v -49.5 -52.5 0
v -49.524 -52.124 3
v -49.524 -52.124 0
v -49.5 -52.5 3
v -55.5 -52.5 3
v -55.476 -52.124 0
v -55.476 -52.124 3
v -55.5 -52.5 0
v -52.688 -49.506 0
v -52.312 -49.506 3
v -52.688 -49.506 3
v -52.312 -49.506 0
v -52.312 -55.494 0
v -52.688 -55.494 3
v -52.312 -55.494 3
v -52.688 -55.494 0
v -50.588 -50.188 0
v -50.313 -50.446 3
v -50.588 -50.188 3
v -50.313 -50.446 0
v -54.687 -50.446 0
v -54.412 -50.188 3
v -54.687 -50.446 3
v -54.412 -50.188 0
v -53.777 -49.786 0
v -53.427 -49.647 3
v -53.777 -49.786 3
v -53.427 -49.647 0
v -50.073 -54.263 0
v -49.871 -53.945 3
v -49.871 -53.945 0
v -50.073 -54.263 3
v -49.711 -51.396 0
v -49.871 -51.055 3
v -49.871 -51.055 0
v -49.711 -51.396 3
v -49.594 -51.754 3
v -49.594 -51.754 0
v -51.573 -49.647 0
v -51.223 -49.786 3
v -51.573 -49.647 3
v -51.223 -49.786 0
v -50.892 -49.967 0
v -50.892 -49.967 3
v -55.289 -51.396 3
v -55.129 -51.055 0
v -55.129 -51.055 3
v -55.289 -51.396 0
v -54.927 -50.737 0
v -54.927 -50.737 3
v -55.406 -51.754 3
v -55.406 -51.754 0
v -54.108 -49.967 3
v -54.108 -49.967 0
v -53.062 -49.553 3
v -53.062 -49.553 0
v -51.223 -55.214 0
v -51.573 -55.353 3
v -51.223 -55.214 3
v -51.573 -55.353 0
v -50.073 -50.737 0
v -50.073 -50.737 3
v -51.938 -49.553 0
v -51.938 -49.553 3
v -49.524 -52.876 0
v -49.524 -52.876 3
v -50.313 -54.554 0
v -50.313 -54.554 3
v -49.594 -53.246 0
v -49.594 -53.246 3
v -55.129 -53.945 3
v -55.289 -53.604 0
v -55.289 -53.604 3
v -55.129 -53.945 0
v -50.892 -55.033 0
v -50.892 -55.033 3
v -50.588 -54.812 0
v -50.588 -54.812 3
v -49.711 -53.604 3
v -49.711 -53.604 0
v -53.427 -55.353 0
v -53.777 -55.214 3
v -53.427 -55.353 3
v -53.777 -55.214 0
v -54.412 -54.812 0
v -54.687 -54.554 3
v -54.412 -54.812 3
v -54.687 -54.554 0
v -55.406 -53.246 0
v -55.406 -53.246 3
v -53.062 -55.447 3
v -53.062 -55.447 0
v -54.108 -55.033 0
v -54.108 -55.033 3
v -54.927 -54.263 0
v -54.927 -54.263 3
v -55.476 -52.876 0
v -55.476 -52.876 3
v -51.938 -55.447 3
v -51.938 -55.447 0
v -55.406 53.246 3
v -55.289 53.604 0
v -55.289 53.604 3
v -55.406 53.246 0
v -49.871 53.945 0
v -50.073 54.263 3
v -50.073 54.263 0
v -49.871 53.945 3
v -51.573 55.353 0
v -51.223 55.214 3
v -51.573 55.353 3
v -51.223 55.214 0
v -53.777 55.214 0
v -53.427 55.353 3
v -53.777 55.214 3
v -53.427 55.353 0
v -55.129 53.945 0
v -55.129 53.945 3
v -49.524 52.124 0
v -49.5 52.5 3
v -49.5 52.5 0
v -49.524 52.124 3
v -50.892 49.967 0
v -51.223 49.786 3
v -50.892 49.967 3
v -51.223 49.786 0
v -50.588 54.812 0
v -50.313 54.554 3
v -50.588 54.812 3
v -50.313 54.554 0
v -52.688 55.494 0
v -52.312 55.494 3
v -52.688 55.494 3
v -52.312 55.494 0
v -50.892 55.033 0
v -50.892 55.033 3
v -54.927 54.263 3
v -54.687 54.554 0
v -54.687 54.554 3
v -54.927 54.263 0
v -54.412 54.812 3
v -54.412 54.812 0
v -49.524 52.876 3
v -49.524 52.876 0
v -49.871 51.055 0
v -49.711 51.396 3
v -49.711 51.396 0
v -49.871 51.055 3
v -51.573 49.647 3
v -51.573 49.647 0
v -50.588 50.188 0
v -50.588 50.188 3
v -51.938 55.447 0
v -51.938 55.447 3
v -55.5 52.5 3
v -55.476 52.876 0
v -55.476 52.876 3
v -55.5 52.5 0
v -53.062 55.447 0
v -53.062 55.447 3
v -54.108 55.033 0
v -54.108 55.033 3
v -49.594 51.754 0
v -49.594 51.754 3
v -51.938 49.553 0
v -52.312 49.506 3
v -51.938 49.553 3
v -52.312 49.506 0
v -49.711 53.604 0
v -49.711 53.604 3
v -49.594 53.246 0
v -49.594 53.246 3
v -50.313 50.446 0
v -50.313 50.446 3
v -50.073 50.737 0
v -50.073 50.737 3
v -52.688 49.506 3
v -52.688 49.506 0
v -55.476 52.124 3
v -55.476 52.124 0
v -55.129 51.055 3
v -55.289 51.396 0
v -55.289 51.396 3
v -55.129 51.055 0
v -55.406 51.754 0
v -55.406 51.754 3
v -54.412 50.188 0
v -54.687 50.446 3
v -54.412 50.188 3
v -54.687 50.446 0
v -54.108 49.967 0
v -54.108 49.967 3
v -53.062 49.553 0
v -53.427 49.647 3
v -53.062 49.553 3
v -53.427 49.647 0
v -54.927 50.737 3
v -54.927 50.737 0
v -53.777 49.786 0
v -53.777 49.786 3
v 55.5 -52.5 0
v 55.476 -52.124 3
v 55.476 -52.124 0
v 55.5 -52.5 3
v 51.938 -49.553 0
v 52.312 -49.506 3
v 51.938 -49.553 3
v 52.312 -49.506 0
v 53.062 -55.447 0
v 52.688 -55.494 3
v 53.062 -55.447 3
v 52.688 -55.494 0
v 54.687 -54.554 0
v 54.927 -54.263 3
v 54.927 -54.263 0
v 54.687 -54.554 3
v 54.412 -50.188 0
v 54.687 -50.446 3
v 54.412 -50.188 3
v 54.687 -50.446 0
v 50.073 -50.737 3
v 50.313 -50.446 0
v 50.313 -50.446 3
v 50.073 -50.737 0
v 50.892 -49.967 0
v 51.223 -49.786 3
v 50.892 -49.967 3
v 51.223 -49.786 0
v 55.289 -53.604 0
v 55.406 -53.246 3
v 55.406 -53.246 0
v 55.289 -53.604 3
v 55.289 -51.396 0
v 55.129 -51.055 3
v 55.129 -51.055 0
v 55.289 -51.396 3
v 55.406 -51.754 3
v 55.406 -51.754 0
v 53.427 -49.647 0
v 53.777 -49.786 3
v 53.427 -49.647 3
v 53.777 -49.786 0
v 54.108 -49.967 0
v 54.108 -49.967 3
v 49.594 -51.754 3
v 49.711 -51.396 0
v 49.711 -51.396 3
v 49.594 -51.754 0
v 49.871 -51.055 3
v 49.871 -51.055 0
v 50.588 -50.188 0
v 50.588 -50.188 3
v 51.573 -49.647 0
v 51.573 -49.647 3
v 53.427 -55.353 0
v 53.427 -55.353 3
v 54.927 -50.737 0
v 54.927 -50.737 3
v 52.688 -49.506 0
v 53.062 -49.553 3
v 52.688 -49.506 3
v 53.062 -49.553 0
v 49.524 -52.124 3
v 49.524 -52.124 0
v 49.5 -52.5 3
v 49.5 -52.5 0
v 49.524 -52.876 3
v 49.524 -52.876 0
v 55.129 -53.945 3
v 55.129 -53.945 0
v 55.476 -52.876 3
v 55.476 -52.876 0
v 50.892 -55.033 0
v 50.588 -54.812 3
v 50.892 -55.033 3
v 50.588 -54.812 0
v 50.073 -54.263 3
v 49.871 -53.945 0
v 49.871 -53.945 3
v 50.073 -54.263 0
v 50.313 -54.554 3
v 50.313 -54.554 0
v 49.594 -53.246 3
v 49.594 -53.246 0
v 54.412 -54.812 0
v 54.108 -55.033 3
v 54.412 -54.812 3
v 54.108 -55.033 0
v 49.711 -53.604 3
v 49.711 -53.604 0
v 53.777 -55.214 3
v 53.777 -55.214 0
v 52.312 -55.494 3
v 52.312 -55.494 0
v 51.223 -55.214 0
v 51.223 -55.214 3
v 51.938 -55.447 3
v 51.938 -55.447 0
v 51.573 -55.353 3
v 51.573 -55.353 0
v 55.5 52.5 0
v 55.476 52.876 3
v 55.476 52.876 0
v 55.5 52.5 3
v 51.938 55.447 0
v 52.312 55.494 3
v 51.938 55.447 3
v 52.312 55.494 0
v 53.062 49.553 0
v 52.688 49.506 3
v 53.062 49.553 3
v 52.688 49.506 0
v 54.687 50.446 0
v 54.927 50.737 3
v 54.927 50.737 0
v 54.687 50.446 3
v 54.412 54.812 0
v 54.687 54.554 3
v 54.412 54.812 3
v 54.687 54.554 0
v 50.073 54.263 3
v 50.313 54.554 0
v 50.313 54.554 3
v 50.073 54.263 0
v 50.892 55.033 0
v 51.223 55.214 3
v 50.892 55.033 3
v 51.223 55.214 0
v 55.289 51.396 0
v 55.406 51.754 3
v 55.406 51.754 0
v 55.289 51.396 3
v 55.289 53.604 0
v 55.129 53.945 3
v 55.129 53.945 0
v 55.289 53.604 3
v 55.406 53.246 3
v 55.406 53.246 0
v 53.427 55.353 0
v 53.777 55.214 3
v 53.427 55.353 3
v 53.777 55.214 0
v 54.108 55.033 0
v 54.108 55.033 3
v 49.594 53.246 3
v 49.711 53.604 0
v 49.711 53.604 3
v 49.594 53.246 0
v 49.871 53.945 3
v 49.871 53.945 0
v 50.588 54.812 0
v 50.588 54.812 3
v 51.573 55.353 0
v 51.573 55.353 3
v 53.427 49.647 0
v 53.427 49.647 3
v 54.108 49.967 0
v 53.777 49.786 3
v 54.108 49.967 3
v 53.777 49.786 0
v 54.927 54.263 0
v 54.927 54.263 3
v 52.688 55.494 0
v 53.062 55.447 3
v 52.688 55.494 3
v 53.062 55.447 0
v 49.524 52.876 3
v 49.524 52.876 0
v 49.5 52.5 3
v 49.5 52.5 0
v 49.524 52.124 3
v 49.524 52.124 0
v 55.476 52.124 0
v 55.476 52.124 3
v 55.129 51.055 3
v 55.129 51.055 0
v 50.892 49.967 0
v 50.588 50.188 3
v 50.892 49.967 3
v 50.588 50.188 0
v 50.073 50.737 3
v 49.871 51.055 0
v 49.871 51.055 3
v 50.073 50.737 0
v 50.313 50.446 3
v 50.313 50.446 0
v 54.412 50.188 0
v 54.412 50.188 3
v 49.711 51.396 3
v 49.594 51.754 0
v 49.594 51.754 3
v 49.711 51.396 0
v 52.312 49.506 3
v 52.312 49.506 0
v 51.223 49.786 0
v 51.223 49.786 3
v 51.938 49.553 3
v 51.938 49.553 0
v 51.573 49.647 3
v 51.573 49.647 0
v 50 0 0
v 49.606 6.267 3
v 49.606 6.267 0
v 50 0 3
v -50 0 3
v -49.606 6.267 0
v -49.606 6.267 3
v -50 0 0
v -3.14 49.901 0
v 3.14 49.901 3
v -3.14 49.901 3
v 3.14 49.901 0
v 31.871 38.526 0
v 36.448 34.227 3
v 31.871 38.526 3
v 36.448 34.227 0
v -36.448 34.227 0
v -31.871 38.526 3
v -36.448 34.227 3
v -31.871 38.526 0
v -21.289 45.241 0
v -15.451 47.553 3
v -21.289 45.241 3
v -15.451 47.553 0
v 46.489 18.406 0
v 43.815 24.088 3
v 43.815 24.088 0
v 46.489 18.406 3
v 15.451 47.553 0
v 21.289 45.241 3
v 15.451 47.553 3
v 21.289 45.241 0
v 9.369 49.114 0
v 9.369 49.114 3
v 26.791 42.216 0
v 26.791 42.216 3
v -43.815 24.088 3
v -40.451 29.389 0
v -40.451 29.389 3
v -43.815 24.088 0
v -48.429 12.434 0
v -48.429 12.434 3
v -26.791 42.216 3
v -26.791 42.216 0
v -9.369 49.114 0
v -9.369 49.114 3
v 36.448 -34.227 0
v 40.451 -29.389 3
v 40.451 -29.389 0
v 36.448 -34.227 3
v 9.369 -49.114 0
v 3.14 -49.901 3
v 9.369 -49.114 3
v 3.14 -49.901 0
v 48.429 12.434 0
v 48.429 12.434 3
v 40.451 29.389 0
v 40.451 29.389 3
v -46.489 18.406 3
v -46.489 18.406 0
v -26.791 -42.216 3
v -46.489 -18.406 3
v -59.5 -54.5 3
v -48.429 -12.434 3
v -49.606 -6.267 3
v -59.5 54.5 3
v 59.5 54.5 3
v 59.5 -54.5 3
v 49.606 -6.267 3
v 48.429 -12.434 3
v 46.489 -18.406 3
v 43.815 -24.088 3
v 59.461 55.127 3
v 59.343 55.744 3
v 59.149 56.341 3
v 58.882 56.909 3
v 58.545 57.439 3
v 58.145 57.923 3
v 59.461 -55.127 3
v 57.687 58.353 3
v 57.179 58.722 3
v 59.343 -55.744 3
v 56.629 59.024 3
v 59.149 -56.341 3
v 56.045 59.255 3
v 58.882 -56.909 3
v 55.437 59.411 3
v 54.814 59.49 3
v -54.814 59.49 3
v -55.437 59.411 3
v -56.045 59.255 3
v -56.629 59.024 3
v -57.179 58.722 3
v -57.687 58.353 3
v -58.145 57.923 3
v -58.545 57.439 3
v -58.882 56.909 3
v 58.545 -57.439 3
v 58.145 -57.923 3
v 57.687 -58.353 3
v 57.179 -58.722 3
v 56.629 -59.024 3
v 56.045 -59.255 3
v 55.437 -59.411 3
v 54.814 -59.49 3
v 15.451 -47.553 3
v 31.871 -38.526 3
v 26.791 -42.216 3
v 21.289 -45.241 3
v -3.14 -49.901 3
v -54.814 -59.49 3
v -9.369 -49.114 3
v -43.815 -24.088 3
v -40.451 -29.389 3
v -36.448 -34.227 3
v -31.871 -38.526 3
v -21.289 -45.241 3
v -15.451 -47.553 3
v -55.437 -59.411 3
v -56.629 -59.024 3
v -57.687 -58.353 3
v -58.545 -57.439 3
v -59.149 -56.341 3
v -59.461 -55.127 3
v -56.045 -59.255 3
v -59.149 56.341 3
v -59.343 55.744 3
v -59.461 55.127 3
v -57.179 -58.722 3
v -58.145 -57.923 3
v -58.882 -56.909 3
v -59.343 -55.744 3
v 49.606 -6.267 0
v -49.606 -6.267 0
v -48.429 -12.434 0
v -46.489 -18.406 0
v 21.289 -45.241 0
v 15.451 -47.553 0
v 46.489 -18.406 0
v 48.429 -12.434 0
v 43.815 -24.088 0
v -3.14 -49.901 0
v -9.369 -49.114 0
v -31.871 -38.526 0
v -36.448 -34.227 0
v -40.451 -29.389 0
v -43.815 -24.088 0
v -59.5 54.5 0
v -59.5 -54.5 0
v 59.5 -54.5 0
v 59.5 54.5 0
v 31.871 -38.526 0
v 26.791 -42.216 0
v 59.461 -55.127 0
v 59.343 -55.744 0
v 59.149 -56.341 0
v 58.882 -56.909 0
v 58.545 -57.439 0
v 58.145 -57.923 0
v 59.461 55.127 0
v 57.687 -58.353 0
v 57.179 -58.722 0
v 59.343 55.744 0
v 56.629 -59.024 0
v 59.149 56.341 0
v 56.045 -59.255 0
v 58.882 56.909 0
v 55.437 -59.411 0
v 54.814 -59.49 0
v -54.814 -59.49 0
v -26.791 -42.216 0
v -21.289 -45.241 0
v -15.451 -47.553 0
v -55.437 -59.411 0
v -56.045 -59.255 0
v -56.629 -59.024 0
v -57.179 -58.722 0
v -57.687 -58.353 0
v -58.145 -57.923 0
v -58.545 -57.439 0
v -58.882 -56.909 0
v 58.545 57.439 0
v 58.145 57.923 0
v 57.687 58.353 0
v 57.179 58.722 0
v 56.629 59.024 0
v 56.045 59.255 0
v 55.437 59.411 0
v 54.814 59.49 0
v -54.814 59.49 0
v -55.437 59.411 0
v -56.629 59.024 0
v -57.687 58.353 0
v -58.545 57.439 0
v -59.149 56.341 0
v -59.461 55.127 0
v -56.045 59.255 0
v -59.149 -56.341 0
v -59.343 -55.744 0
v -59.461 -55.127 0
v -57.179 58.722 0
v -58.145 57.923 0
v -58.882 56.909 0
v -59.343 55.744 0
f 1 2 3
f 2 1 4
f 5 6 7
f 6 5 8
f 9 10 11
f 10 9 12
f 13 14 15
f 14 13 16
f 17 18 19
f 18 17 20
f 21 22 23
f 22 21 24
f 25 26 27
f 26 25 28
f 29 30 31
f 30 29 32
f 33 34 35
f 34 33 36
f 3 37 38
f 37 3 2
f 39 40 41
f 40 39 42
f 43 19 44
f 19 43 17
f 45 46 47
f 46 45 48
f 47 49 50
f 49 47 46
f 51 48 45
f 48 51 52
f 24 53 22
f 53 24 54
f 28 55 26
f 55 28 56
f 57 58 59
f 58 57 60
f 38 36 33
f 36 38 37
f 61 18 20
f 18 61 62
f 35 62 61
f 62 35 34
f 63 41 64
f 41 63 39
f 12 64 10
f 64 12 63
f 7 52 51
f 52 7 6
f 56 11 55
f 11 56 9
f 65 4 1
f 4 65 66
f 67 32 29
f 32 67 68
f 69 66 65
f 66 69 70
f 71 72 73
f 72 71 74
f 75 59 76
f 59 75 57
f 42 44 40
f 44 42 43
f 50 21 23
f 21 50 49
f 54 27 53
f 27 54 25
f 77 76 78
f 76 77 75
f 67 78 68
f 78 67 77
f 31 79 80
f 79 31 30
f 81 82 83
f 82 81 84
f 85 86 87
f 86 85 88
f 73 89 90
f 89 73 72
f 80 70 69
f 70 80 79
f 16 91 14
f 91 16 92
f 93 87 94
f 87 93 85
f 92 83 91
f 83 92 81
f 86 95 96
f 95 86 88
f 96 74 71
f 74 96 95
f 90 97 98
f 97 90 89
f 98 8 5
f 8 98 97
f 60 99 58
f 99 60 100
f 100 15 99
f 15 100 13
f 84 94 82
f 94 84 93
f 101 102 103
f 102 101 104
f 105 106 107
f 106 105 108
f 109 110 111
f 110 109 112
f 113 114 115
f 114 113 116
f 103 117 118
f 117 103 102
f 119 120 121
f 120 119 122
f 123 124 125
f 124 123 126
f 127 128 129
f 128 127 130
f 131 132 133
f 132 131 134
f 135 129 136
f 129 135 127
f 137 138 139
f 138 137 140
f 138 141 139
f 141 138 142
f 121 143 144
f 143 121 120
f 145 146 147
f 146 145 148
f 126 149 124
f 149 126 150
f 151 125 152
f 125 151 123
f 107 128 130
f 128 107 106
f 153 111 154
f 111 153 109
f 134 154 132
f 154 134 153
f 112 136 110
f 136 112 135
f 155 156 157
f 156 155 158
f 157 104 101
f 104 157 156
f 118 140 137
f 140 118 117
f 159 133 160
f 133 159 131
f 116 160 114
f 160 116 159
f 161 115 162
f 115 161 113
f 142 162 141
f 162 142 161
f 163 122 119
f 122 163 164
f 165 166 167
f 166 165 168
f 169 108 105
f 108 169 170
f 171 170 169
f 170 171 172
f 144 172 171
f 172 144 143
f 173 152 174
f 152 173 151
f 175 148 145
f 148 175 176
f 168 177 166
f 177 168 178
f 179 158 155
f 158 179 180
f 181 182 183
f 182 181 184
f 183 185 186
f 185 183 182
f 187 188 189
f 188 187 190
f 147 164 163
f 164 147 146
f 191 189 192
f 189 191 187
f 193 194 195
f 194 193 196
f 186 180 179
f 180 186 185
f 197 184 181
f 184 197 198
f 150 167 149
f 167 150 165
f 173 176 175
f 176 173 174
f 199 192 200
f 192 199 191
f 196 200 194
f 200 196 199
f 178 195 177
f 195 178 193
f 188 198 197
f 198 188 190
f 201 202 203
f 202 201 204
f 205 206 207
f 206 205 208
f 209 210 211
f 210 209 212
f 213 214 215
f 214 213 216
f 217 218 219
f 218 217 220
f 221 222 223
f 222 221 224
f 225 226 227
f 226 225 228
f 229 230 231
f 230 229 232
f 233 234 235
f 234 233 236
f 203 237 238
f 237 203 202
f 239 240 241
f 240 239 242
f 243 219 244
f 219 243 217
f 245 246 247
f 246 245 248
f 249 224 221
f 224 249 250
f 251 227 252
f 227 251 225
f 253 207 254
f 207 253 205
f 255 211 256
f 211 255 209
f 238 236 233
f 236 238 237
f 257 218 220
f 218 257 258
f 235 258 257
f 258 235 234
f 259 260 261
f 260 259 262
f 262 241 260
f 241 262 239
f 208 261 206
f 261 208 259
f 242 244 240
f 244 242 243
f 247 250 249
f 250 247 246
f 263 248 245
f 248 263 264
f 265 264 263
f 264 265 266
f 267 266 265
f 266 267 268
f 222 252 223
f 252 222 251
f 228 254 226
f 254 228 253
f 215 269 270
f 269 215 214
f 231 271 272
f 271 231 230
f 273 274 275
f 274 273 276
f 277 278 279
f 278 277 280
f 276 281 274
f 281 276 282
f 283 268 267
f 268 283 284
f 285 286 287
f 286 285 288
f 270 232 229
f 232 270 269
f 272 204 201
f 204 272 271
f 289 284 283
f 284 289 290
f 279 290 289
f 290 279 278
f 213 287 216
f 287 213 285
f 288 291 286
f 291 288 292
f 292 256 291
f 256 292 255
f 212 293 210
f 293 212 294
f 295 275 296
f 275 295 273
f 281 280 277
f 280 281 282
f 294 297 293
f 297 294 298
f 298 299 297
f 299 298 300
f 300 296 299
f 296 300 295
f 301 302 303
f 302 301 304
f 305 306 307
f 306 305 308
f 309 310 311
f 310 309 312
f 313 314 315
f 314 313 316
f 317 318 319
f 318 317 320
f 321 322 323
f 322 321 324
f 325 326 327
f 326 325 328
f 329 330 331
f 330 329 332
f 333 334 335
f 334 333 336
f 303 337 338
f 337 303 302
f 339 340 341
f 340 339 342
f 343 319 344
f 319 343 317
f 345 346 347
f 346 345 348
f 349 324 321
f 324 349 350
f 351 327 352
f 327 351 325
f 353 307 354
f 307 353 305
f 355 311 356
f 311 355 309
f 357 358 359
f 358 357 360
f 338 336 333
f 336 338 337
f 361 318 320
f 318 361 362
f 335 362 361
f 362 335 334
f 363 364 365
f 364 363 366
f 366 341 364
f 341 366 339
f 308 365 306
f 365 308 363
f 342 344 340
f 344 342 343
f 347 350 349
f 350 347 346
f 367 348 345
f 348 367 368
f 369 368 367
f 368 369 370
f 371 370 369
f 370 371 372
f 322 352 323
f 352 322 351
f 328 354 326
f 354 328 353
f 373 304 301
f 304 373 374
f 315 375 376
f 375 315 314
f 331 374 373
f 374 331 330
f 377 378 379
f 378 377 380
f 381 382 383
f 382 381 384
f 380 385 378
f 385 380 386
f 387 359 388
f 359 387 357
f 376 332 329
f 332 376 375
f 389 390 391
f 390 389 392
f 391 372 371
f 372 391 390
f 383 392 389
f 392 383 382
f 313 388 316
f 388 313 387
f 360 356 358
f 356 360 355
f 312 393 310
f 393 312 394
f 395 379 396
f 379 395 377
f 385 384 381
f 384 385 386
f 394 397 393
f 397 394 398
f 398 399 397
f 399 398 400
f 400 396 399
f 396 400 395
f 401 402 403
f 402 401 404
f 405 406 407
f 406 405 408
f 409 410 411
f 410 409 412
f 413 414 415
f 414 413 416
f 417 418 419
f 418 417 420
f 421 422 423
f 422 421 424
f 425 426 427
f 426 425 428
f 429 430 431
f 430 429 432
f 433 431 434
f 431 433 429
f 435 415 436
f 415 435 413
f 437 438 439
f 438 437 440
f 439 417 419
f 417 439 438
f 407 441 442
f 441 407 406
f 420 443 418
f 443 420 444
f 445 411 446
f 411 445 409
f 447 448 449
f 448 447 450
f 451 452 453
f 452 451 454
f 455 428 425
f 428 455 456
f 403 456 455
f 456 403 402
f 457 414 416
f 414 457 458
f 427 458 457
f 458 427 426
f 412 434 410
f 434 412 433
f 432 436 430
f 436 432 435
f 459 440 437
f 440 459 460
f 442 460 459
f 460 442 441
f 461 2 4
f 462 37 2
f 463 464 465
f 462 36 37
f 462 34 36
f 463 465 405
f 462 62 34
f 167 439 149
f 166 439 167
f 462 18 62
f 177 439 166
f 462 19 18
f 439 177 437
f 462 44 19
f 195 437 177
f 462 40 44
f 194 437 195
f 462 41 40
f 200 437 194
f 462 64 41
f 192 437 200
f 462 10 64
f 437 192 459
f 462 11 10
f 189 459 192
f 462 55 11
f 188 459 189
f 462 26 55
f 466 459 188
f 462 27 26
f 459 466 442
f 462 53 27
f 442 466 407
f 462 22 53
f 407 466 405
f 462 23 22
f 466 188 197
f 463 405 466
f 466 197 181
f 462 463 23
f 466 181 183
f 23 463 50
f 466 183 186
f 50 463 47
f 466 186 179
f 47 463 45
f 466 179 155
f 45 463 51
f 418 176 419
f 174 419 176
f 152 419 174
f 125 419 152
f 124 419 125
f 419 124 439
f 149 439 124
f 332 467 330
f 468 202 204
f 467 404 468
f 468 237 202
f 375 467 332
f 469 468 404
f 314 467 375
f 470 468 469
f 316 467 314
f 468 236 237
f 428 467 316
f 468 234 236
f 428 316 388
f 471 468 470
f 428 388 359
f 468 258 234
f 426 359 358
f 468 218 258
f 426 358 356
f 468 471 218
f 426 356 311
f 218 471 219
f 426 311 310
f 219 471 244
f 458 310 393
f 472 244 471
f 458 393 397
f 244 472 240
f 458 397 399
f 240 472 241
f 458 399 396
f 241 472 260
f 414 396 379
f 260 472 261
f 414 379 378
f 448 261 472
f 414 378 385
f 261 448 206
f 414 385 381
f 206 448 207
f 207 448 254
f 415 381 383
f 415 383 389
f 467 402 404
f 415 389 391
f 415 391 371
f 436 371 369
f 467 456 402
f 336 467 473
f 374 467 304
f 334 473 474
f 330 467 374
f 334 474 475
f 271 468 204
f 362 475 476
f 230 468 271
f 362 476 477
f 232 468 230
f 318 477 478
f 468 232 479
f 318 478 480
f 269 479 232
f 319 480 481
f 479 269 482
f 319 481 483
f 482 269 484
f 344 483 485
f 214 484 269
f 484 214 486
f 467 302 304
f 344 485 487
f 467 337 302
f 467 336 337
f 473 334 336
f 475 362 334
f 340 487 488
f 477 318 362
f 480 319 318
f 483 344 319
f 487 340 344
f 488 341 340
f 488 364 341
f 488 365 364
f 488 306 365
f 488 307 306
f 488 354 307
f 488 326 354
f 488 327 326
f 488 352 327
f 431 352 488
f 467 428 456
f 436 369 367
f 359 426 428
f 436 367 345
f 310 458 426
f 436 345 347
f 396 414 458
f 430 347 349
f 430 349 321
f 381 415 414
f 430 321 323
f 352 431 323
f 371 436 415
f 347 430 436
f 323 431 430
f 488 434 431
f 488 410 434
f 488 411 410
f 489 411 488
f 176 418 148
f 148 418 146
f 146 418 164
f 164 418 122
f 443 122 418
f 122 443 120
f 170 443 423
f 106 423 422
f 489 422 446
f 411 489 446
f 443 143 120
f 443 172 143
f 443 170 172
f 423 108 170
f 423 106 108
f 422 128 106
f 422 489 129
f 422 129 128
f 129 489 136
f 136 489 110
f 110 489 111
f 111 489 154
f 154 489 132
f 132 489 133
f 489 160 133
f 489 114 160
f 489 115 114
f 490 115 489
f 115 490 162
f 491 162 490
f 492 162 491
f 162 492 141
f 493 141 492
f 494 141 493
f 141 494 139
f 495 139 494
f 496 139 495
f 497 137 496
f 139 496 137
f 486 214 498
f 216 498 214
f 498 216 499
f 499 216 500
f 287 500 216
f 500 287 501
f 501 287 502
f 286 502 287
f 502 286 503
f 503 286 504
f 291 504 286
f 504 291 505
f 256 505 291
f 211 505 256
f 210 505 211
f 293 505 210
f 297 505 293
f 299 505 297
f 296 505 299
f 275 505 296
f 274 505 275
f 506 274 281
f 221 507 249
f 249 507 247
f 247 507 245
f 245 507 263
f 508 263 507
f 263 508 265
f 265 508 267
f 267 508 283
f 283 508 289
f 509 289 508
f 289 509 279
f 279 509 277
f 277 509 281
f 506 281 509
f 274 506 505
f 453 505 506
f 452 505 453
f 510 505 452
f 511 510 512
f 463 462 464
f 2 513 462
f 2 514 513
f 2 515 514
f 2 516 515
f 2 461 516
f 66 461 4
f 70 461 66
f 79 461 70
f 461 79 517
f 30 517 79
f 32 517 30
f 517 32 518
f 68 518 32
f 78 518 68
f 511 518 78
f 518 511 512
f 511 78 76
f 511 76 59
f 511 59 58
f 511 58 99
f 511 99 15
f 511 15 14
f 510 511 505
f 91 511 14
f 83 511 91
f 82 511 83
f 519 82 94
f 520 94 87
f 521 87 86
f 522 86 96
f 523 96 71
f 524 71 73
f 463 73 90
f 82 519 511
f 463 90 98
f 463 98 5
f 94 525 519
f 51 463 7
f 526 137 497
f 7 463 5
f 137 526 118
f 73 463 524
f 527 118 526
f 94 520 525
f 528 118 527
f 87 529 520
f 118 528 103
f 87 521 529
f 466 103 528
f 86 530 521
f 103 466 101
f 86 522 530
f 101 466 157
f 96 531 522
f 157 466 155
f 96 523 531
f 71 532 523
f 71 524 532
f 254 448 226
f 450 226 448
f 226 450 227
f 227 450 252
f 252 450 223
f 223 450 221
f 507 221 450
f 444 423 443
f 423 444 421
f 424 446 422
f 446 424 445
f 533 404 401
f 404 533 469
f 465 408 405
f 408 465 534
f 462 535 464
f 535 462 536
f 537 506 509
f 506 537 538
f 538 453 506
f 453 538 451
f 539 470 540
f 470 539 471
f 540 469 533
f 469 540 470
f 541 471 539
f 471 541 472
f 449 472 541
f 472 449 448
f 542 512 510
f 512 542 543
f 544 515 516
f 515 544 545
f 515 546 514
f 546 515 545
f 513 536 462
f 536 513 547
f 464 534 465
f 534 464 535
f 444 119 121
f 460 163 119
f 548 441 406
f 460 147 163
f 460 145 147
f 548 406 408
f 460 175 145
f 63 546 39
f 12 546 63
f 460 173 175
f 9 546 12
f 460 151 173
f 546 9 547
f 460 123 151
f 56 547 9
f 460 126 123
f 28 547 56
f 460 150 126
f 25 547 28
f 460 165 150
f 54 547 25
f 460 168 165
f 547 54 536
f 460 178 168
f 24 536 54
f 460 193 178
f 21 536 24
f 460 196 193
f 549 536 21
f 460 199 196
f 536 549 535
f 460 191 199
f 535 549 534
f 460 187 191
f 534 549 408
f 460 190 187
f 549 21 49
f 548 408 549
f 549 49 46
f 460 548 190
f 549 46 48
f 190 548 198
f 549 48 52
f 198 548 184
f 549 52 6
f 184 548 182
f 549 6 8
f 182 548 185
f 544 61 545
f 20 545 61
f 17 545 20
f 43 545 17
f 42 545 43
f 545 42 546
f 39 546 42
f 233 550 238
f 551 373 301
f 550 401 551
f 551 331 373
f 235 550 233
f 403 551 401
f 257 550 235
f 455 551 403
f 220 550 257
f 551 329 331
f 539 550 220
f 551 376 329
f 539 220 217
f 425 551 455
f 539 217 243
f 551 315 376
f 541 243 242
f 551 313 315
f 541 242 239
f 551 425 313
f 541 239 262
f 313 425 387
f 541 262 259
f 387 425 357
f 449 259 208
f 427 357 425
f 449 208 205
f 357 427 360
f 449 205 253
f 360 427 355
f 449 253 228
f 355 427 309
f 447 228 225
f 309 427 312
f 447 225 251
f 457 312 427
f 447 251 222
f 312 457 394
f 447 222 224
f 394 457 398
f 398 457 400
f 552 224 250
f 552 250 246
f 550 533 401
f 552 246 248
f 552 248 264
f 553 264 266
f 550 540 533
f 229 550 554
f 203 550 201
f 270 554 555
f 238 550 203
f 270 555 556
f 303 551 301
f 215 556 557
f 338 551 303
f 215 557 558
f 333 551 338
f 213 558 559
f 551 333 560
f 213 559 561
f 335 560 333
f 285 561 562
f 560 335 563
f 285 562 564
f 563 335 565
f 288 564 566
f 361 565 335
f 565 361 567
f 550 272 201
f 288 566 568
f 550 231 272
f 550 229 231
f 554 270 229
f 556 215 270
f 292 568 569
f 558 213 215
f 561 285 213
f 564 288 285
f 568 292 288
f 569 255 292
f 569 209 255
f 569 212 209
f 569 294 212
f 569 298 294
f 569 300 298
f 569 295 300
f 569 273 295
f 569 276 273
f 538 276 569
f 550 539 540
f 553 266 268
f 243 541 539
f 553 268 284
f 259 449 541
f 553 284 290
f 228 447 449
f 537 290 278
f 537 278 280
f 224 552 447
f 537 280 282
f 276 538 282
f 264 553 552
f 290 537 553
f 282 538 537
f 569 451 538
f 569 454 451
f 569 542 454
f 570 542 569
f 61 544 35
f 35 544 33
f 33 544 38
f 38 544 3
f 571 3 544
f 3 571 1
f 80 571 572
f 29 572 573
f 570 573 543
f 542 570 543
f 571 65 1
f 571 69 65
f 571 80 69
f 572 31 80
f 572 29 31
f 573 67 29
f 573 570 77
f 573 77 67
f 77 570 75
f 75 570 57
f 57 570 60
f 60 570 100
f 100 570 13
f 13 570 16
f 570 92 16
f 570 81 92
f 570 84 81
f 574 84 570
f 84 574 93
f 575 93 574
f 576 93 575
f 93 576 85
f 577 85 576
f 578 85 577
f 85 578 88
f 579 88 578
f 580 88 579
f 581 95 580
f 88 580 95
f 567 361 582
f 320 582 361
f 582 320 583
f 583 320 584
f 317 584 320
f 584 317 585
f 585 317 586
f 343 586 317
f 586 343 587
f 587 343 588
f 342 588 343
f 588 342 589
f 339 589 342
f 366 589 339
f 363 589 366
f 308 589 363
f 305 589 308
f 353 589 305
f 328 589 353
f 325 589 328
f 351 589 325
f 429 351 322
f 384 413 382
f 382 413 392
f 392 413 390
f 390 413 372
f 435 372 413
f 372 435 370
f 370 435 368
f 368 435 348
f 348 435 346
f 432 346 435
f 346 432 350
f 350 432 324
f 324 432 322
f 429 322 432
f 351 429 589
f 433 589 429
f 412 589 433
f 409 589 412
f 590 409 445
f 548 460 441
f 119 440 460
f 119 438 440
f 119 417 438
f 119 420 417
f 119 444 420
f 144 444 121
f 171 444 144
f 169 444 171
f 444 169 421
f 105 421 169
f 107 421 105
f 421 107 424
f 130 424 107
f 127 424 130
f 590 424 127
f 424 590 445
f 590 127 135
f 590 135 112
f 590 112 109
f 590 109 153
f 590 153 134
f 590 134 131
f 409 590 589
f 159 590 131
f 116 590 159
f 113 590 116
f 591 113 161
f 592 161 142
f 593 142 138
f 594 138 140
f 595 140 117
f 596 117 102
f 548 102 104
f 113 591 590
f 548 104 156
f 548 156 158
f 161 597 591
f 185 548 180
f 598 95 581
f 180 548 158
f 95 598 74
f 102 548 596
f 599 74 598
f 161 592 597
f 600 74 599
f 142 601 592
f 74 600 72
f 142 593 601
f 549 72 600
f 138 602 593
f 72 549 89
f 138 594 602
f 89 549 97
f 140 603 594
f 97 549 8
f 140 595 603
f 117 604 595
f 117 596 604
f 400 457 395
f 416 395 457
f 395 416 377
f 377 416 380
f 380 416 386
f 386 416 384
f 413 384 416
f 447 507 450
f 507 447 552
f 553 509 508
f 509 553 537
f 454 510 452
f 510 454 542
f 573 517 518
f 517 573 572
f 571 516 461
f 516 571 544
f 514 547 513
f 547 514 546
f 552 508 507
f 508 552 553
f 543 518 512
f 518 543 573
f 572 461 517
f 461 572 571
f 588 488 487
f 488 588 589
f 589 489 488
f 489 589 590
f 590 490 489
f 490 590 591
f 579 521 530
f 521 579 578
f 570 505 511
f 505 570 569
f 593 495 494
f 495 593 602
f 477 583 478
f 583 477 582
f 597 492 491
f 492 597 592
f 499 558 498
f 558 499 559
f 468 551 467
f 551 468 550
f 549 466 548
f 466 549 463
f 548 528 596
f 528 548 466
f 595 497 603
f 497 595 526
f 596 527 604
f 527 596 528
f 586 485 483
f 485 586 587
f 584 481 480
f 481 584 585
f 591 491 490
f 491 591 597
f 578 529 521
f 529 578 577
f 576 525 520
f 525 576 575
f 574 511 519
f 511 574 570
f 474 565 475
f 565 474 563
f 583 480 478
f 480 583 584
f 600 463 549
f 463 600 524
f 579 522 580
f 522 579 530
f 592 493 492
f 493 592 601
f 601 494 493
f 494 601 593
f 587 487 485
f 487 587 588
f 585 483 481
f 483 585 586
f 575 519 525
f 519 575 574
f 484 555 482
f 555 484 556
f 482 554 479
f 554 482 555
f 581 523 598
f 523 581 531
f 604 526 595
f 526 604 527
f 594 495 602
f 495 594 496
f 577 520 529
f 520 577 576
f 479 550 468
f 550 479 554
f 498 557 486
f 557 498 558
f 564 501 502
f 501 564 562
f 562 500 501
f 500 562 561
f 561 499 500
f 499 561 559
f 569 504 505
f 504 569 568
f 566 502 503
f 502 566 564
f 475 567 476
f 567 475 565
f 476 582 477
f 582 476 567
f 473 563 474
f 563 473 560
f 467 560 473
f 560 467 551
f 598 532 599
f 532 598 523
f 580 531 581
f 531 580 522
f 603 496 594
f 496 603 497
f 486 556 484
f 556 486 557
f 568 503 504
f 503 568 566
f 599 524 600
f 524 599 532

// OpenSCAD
$fn = 50;


difference() {
	union() {
		hull() {
			translate(v = [-54.5000000000, 54.5000000000, 0]) {
				cylinder(h = 3, r = 5);
			}
			translate(v = [54.5000000000, 54.5000000000, 0]) {
				cylinder(h = 3, r = 5);
			}
			translate(v = [-54.5000000000, -54.5000000000, 0]) {
				cylinder(h = 3, r = 5);
			}
			translate(v = [54.5000000000, -54.5000000000, 0]) {
				cylinder(h = 3, r = 5);
			}
		}
	}
	union() {
		#translate(v = [-52.5000000000, -52.5000000000, -100.0000000000]) {
			cylinder(h = 200, r = 3.0000000000);
		}
		#translate(v = [-52.5000000000, 52.5000000000, -100.0000000000]) {
			cylinder(h = 200, r = 3.0000000000);
		}
		#translate(v = [52.5000000000, -52.5000000000, -100.0000000000]) {
			cylinder(h = 200, r = 3.0000000000);
		}
		#translate(v = [52.5000000000, 52.5000000000, -100.0000000000]) {
			cylinder(h = 200, r = 3.0000000000);
		}
		#cylinder(h = 3, r = 50.0000000000);
	}
}
